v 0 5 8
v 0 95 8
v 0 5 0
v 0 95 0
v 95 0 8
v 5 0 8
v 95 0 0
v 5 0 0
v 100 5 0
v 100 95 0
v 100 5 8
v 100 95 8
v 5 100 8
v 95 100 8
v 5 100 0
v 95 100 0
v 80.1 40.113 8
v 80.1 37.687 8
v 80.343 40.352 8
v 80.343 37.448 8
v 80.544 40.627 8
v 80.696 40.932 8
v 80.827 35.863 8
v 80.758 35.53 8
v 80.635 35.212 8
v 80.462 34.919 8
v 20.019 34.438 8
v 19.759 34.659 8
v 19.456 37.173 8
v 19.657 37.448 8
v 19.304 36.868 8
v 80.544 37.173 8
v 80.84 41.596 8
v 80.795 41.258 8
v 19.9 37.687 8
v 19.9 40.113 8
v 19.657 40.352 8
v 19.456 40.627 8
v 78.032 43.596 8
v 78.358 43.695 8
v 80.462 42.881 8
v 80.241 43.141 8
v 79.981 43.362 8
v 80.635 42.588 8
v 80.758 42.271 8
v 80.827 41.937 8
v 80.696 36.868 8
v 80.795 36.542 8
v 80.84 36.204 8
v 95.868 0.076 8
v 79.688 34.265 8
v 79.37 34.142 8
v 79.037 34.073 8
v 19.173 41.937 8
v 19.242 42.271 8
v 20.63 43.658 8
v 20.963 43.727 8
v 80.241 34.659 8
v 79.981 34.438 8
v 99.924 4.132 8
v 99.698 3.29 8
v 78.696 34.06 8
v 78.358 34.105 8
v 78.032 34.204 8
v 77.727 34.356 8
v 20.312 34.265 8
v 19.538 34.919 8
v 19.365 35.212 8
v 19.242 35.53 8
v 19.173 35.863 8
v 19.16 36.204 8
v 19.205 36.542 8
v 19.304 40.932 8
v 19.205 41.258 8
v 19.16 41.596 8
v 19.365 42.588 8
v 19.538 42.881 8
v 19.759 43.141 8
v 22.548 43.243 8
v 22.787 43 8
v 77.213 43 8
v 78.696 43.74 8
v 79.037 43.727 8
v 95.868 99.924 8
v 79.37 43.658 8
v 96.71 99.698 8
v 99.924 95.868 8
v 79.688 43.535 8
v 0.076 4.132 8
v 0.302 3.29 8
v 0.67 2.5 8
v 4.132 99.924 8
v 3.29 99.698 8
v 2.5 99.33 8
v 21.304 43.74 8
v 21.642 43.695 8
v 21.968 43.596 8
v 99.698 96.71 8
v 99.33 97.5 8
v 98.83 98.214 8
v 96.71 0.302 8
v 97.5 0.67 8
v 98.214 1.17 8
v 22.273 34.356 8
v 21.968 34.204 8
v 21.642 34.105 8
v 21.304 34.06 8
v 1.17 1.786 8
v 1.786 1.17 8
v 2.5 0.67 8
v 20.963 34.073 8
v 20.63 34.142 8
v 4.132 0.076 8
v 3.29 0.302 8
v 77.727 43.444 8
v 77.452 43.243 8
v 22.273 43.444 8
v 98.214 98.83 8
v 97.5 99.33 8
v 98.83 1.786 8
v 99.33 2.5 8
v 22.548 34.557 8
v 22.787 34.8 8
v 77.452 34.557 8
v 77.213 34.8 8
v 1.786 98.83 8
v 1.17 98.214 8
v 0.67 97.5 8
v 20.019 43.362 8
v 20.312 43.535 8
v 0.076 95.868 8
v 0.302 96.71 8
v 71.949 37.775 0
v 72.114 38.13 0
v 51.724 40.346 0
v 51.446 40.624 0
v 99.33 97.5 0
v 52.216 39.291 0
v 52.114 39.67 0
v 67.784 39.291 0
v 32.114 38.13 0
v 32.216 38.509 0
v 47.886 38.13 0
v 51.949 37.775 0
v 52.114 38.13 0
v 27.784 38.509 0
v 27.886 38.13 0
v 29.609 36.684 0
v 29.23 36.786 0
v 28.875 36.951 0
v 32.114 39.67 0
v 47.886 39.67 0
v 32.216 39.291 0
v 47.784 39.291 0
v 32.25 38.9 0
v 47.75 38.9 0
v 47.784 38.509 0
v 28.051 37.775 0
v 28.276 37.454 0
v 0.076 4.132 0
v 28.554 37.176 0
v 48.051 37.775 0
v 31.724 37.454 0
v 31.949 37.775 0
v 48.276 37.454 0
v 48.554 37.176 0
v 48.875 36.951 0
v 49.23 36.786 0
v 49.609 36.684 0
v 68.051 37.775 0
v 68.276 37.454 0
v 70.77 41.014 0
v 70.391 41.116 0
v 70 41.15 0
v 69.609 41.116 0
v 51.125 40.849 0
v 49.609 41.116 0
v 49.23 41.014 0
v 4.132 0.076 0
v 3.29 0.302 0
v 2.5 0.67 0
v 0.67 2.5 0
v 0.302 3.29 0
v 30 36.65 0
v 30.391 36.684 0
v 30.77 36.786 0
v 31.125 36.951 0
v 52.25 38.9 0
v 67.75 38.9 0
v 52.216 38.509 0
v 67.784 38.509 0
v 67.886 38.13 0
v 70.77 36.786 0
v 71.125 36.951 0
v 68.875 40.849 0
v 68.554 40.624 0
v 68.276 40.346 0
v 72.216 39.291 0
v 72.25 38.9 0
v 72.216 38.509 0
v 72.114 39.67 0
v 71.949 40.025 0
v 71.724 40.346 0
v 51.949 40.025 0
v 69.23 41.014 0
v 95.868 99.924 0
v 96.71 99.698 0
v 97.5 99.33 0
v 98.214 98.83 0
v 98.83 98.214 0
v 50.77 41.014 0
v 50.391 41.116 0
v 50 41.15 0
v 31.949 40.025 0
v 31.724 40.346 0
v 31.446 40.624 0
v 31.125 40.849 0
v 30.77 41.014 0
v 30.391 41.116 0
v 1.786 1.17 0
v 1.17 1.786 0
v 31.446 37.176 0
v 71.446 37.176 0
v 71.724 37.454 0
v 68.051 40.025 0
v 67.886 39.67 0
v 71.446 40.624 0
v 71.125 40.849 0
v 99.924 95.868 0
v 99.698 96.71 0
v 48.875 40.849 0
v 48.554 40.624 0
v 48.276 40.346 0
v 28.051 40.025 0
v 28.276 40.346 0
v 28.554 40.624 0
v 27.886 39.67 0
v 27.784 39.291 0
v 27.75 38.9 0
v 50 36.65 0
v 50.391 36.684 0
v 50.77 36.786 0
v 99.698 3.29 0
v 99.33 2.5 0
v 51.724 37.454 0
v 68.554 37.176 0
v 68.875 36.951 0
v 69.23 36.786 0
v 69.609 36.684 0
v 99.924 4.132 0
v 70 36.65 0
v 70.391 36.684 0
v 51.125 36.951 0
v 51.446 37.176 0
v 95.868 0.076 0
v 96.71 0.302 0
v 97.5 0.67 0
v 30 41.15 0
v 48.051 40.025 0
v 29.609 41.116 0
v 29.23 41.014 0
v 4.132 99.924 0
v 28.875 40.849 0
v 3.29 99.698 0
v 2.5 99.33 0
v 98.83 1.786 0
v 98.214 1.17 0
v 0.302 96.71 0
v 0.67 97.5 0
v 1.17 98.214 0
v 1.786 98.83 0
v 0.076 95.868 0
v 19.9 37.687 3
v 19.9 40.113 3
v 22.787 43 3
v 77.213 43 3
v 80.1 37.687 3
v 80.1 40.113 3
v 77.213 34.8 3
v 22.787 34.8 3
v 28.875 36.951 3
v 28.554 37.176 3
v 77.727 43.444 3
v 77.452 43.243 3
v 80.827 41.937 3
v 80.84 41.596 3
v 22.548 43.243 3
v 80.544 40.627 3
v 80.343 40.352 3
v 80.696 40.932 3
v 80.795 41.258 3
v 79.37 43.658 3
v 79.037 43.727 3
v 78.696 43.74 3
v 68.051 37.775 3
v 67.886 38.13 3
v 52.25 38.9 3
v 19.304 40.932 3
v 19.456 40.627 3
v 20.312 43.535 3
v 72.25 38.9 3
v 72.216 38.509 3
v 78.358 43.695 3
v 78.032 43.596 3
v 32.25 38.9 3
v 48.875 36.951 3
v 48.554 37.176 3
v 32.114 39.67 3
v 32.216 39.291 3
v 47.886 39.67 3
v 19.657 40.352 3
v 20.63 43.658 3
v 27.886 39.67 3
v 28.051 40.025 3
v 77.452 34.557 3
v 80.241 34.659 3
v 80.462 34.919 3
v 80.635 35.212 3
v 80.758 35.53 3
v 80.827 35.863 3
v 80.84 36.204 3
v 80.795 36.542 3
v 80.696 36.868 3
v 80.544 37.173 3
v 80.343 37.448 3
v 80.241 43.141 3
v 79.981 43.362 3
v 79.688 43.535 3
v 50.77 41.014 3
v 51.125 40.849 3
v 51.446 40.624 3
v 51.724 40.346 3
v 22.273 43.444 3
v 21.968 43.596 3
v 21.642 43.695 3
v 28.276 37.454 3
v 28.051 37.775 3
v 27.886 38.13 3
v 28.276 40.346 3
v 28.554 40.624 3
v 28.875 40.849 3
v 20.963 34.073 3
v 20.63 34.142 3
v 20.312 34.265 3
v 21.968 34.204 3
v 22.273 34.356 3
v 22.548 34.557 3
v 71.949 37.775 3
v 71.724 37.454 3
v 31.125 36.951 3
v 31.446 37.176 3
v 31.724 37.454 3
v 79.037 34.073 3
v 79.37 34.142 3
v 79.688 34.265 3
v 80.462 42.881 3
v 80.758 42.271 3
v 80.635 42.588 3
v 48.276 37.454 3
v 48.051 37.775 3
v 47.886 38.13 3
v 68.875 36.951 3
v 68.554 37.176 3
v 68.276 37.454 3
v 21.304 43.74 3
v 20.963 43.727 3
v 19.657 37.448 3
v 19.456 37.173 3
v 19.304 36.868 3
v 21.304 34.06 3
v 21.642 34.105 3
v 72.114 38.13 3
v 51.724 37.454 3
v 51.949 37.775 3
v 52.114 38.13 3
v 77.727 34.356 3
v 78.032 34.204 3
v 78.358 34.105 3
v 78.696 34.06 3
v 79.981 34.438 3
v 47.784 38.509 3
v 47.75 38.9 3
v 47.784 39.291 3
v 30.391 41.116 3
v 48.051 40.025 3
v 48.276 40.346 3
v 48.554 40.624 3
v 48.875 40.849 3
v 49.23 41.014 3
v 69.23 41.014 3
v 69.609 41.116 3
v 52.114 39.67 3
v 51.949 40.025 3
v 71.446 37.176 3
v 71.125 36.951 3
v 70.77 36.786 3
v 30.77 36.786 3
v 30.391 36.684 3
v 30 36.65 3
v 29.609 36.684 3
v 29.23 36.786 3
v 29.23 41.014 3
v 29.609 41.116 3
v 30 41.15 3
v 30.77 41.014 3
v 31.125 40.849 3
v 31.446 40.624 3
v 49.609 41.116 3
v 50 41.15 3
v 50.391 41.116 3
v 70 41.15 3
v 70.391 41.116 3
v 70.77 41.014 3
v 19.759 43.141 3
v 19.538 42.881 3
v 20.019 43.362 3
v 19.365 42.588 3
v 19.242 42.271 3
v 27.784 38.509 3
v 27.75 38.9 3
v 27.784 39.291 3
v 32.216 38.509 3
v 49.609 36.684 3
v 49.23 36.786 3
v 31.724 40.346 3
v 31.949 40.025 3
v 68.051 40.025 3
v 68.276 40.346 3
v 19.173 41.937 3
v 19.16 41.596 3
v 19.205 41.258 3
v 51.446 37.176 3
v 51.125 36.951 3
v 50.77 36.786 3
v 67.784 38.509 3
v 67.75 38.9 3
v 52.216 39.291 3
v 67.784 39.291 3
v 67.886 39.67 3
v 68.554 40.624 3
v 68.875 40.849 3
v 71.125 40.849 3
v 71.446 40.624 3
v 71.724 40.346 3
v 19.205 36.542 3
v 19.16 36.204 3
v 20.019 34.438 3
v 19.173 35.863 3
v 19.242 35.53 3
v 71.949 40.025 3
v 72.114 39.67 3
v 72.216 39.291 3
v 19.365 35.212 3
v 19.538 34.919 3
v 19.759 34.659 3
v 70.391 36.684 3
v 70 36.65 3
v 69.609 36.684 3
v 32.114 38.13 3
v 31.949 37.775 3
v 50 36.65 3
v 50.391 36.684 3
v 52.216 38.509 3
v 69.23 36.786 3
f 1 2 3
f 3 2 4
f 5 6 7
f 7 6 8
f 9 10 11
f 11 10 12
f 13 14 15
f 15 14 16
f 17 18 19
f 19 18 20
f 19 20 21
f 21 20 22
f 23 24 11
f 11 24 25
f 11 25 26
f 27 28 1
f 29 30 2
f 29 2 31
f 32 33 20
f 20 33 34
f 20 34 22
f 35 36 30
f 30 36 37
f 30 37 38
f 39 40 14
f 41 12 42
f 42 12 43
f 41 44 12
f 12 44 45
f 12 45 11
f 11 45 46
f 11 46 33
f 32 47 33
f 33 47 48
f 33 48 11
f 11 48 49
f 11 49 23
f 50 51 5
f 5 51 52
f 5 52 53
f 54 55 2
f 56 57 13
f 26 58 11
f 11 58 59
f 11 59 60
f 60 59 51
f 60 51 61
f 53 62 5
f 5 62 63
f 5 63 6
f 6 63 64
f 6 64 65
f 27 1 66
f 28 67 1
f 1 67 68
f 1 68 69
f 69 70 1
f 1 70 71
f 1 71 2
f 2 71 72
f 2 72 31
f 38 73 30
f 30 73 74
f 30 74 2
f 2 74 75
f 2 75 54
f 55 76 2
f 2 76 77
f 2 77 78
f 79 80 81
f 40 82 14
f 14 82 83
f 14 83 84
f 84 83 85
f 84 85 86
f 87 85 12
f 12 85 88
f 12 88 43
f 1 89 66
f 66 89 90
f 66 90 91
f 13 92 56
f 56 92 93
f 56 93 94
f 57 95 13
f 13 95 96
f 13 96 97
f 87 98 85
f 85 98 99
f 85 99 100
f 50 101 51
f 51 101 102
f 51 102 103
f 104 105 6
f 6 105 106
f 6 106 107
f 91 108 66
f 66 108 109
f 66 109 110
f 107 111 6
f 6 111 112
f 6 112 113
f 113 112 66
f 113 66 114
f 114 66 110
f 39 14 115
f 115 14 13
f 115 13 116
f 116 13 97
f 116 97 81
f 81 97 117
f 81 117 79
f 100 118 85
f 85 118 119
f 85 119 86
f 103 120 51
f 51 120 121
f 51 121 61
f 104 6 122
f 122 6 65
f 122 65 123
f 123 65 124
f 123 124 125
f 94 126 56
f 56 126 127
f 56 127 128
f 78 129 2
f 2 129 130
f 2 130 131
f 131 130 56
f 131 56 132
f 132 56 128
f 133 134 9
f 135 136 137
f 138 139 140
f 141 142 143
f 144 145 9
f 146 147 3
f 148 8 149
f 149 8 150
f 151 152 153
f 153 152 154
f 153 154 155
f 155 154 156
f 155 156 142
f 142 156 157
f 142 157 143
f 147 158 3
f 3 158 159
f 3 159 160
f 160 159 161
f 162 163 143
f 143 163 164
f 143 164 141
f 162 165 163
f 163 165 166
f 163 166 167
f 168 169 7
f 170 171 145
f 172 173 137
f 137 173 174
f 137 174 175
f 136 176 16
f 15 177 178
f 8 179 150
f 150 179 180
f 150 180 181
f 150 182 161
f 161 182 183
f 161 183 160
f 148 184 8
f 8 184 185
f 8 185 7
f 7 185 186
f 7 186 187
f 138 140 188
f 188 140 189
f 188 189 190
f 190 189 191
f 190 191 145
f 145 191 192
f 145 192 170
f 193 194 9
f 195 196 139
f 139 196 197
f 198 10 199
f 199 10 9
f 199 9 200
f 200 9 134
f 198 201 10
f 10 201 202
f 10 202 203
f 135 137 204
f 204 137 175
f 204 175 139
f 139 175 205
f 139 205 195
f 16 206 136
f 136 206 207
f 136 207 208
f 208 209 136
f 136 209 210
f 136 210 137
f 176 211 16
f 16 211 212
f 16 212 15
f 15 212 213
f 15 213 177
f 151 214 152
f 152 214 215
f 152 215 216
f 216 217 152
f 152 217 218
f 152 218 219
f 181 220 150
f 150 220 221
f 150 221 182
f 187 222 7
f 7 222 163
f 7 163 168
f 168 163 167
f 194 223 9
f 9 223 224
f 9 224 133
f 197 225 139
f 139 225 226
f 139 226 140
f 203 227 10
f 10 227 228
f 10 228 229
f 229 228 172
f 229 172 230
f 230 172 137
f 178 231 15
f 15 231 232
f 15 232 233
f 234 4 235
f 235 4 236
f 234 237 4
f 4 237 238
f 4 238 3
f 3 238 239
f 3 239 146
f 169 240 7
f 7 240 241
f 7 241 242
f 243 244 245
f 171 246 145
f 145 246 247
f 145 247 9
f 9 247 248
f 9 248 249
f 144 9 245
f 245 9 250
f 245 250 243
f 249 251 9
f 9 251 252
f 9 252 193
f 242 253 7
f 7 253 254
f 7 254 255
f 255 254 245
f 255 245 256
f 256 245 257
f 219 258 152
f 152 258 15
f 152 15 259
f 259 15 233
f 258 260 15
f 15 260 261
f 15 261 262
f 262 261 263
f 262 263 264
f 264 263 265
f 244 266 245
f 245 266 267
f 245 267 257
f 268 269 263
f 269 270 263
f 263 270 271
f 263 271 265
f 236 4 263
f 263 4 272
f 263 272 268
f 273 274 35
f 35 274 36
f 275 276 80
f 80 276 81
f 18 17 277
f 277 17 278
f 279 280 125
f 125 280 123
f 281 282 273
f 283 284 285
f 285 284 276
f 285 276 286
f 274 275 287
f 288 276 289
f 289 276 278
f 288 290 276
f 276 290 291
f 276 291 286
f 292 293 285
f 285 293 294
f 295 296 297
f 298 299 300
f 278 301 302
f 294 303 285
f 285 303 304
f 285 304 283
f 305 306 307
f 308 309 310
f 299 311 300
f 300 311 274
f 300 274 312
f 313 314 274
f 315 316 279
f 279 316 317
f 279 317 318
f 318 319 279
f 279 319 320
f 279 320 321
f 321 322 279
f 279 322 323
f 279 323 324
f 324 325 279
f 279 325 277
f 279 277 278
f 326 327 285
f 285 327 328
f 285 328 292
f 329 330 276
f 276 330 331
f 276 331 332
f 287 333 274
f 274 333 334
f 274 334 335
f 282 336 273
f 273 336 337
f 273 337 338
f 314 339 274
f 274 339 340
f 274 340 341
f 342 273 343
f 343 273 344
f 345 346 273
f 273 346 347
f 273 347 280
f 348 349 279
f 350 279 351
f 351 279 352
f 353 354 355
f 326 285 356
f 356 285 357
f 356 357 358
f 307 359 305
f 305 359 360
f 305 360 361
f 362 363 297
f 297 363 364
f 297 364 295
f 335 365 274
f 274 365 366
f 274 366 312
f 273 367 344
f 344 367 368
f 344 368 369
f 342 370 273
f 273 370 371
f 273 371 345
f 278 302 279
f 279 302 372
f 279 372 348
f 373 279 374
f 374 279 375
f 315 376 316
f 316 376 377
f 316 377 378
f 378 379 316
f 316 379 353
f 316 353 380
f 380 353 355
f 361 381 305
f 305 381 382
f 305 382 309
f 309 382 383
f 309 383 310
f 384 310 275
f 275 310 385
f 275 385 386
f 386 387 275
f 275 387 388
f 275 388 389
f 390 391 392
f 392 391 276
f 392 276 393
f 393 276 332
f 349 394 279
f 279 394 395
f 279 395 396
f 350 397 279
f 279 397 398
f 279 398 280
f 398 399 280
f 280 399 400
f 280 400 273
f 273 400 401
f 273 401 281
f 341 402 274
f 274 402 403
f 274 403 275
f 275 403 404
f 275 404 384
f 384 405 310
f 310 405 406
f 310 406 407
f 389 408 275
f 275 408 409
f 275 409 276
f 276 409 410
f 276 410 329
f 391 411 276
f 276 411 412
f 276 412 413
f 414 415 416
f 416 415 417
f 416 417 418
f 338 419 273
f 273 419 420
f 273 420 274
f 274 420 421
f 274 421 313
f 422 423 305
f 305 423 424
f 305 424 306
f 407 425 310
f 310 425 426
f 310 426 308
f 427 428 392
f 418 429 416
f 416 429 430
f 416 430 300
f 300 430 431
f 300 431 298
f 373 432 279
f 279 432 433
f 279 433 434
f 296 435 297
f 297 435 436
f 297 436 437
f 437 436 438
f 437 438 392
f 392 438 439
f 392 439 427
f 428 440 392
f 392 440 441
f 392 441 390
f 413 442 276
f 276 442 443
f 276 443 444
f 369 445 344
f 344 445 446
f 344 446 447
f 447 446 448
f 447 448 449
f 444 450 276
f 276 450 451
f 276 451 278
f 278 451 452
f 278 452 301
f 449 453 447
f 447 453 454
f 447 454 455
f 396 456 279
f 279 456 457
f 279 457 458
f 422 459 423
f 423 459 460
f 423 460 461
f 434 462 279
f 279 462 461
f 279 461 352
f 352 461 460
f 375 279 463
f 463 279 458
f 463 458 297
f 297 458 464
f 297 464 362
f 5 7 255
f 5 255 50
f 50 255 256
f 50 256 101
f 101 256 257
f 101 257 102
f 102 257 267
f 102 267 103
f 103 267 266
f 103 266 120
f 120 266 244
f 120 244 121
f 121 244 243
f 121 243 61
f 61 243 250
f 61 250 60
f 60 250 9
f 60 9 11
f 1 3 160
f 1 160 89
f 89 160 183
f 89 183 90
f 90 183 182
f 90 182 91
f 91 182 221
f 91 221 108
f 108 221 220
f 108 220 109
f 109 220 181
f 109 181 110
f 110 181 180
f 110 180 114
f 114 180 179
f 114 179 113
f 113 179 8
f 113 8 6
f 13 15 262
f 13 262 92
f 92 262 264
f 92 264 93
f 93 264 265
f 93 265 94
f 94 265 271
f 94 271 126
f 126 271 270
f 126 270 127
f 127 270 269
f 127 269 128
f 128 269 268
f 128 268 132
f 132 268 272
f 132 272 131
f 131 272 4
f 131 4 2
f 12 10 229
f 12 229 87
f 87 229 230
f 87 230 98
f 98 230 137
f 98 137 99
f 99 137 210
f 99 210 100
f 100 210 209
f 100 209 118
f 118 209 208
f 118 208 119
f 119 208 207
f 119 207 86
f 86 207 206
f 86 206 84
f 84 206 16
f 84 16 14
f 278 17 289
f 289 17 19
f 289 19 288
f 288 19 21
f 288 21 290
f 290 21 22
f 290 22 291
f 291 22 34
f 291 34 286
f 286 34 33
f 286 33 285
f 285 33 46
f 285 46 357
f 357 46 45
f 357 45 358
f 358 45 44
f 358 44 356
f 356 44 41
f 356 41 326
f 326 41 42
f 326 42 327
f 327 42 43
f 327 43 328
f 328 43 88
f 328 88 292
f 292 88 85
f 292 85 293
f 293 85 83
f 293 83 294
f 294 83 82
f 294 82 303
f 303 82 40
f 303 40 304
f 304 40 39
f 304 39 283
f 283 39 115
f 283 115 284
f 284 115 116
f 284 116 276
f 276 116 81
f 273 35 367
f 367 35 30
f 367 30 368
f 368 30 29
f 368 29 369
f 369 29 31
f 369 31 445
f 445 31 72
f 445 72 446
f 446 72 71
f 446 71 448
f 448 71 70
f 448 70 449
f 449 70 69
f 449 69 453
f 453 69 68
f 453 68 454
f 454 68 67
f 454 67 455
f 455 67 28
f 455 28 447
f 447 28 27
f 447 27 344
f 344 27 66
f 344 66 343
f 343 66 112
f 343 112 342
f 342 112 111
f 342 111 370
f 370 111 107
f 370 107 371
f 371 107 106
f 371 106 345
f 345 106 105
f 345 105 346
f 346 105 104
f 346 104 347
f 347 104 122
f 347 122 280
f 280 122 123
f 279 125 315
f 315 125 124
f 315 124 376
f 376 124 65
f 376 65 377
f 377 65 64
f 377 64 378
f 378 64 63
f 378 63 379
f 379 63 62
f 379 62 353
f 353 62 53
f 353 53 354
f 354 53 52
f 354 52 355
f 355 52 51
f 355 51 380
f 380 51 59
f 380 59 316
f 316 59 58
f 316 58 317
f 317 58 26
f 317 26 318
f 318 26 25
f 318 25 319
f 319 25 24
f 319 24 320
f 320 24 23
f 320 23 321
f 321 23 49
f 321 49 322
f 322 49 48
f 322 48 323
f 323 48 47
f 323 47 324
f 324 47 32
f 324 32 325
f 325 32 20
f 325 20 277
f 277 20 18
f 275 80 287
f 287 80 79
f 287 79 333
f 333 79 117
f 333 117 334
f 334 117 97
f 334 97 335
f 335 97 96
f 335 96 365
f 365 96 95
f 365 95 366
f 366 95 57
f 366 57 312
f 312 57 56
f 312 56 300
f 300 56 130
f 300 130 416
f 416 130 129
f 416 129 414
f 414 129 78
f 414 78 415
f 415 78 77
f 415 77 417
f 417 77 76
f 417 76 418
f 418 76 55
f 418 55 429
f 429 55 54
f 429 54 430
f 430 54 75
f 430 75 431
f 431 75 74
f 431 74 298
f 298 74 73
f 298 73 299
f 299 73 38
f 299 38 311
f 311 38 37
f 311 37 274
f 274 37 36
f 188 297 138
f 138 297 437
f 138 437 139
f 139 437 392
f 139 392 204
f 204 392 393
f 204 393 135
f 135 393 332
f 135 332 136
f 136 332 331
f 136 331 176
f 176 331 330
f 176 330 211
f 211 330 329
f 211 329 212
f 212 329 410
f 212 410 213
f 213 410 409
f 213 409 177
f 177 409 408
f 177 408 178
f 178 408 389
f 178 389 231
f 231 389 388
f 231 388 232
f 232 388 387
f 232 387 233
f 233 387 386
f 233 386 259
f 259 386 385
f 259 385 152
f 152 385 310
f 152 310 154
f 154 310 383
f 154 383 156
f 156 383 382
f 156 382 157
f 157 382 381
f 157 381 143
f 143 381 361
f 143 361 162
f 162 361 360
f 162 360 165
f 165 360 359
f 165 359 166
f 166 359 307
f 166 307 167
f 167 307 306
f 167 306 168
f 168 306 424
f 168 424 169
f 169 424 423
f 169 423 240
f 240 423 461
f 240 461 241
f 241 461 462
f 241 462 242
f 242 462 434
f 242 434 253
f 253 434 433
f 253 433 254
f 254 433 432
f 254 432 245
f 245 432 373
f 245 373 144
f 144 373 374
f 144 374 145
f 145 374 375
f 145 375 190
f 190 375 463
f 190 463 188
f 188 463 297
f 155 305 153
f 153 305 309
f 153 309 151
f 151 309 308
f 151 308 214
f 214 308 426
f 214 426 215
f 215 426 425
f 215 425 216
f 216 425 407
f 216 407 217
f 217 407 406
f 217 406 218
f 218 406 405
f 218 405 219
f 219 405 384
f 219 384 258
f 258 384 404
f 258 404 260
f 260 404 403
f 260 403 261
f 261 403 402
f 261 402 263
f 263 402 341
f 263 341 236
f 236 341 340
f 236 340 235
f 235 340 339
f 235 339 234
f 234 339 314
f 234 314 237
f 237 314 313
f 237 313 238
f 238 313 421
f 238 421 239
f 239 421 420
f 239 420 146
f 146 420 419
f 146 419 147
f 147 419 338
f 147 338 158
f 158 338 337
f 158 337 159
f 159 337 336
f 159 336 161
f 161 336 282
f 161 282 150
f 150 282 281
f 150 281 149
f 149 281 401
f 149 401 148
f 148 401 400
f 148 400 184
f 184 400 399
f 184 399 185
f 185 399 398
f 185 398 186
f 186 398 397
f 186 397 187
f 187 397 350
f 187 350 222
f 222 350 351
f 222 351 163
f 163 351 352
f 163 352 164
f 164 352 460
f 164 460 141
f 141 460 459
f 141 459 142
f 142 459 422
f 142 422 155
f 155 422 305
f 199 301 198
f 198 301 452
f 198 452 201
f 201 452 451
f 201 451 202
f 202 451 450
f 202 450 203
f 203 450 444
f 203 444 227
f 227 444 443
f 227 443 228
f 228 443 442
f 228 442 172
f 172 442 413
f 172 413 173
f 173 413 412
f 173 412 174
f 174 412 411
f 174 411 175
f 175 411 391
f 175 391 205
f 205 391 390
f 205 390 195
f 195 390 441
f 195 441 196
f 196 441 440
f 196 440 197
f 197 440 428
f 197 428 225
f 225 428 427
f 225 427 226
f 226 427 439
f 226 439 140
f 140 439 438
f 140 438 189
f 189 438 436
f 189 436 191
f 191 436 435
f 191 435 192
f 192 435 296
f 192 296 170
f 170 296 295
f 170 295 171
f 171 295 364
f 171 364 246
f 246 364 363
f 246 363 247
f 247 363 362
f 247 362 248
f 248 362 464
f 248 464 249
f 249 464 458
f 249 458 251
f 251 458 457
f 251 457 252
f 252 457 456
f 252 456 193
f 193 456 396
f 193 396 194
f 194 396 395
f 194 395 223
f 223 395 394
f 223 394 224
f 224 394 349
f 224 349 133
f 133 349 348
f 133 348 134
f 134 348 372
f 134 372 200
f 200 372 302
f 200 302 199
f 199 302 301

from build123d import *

# Parameters (mm, degrees)
ESQUISSE1_W                  = 100
ESQUISSE1_H                  = 100
BOSS_EXTRU_1_DEPTH           = 8
ESQUISSE2_W                  = 60.2
ESQUISSE2_H                  = 8.2
ENL_V_MAT_EXTRU_1_DEPTH      = 5
CONG_1_R                     = 5
ENL_V_MAT_EXTRU_2_DEPTH      = 5
ESQUISSE4_R                  = 2.25
ENL_V_MAT_EXTRU_3_DEPTH      = 6
ENL_V_MAT_EXTRU_3_DEPTH_BACK = 4


with BuildPart() as part:
    # Esquisse1 → Boss.-Extru.1 (new body)
    with BuildSketch(Plane.XY):
        with Locations((50, 50)):
            Rectangle(ESQUISSE1_W, ESQUISSE1_H)
    extrude(amount=BOSS_EXTRU_1_DEPTH)

    # Esquisse2 → Enlèv. mat.-Extru.1 (cut)
    with BuildSketch(Plane.XY.offset(8)):
        with Locations((50, 38.9)):
            Rectangle(ESQUISSE2_W, ESQUISSE2_H)
    extrude(amount=-ENL_V_MAT_EXTRU_1_DEPTH, mode=Mode.SUBTRACT)

    # Congé1
    cong_1_edges = [part.edges().sort_by_distance(p)[0] for p in [
        (0, 100, 4),
        (100, 100, 4),
        (100, 0, 4),
        (0, 0, 4),
    ]]
    fillet(cong_1_edges, radius=CONG_1_R)

    # Esquisse3 → Enlèv. mat.-Extru.2 (cut)
    with BuildSketch(Plane.XY.offset(8)):
        with BuildLine():
            Line((77.213483043, 43), (80.1, 40.113483043))
            ThreePointArc((80.1, 40.113483043), (80.241421356, 43.141421356), (77.213483043, 43))
        make_face()
        with BuildLine():
            Line((77.213483043, 34.8), (80.1, 37.686516957))
            ThreePointArc((80.1, 37.686516957), (80.241421356, 34.658578644), (77.213483043, 34.8))
        make_face()
        with BuildLine():
            Line((22.786516957, 34.8), (19.9, 37.686516957))
            ThreePointArc((19.9, 37.686516957), (19.758578644, 34.658578644), (22.786516957, 34.8))
        make_face()
        with BuildLine():
            Line((22.786516957, 43), (19.9, 40.113483043))
            ThreePointArc((19.9, 40.113483043), (19.758578644, 43.141421356), (22.786516957, 43))
        make_face()
    extrude(amount=-ENL_V_MAT_EXTRU_2_DEPTH, mode=Mode.SUBTRACT)

    # Esquisse4 → Enlèv. mat.-Extru.3 (cut, two sides)
    with BuildSketch(Plane.XY.offset(3)) as enl_v_mat_extru_3_sk:
        with Locations((50, 38.9)):
            Circle(ESQUISSE4_R)
        with Locations((70, 38.9)):
            Circle(ESQUISSE4_R)
        with Locations((30, 38.9)):
            Circle(ESQUISSE4_R)
    extrude(amount=ENL_V_MAT_EXTRU_3_DEPTH, mode=Mode.SUBTRACT)
    extrude(enl_v_mat_extru_3_sk.sketch, amount=-ENL_V_MAT_EXTRU_3_DEPTH_BACK, mode=Mode.SUBTRACT)


solid = part.part
